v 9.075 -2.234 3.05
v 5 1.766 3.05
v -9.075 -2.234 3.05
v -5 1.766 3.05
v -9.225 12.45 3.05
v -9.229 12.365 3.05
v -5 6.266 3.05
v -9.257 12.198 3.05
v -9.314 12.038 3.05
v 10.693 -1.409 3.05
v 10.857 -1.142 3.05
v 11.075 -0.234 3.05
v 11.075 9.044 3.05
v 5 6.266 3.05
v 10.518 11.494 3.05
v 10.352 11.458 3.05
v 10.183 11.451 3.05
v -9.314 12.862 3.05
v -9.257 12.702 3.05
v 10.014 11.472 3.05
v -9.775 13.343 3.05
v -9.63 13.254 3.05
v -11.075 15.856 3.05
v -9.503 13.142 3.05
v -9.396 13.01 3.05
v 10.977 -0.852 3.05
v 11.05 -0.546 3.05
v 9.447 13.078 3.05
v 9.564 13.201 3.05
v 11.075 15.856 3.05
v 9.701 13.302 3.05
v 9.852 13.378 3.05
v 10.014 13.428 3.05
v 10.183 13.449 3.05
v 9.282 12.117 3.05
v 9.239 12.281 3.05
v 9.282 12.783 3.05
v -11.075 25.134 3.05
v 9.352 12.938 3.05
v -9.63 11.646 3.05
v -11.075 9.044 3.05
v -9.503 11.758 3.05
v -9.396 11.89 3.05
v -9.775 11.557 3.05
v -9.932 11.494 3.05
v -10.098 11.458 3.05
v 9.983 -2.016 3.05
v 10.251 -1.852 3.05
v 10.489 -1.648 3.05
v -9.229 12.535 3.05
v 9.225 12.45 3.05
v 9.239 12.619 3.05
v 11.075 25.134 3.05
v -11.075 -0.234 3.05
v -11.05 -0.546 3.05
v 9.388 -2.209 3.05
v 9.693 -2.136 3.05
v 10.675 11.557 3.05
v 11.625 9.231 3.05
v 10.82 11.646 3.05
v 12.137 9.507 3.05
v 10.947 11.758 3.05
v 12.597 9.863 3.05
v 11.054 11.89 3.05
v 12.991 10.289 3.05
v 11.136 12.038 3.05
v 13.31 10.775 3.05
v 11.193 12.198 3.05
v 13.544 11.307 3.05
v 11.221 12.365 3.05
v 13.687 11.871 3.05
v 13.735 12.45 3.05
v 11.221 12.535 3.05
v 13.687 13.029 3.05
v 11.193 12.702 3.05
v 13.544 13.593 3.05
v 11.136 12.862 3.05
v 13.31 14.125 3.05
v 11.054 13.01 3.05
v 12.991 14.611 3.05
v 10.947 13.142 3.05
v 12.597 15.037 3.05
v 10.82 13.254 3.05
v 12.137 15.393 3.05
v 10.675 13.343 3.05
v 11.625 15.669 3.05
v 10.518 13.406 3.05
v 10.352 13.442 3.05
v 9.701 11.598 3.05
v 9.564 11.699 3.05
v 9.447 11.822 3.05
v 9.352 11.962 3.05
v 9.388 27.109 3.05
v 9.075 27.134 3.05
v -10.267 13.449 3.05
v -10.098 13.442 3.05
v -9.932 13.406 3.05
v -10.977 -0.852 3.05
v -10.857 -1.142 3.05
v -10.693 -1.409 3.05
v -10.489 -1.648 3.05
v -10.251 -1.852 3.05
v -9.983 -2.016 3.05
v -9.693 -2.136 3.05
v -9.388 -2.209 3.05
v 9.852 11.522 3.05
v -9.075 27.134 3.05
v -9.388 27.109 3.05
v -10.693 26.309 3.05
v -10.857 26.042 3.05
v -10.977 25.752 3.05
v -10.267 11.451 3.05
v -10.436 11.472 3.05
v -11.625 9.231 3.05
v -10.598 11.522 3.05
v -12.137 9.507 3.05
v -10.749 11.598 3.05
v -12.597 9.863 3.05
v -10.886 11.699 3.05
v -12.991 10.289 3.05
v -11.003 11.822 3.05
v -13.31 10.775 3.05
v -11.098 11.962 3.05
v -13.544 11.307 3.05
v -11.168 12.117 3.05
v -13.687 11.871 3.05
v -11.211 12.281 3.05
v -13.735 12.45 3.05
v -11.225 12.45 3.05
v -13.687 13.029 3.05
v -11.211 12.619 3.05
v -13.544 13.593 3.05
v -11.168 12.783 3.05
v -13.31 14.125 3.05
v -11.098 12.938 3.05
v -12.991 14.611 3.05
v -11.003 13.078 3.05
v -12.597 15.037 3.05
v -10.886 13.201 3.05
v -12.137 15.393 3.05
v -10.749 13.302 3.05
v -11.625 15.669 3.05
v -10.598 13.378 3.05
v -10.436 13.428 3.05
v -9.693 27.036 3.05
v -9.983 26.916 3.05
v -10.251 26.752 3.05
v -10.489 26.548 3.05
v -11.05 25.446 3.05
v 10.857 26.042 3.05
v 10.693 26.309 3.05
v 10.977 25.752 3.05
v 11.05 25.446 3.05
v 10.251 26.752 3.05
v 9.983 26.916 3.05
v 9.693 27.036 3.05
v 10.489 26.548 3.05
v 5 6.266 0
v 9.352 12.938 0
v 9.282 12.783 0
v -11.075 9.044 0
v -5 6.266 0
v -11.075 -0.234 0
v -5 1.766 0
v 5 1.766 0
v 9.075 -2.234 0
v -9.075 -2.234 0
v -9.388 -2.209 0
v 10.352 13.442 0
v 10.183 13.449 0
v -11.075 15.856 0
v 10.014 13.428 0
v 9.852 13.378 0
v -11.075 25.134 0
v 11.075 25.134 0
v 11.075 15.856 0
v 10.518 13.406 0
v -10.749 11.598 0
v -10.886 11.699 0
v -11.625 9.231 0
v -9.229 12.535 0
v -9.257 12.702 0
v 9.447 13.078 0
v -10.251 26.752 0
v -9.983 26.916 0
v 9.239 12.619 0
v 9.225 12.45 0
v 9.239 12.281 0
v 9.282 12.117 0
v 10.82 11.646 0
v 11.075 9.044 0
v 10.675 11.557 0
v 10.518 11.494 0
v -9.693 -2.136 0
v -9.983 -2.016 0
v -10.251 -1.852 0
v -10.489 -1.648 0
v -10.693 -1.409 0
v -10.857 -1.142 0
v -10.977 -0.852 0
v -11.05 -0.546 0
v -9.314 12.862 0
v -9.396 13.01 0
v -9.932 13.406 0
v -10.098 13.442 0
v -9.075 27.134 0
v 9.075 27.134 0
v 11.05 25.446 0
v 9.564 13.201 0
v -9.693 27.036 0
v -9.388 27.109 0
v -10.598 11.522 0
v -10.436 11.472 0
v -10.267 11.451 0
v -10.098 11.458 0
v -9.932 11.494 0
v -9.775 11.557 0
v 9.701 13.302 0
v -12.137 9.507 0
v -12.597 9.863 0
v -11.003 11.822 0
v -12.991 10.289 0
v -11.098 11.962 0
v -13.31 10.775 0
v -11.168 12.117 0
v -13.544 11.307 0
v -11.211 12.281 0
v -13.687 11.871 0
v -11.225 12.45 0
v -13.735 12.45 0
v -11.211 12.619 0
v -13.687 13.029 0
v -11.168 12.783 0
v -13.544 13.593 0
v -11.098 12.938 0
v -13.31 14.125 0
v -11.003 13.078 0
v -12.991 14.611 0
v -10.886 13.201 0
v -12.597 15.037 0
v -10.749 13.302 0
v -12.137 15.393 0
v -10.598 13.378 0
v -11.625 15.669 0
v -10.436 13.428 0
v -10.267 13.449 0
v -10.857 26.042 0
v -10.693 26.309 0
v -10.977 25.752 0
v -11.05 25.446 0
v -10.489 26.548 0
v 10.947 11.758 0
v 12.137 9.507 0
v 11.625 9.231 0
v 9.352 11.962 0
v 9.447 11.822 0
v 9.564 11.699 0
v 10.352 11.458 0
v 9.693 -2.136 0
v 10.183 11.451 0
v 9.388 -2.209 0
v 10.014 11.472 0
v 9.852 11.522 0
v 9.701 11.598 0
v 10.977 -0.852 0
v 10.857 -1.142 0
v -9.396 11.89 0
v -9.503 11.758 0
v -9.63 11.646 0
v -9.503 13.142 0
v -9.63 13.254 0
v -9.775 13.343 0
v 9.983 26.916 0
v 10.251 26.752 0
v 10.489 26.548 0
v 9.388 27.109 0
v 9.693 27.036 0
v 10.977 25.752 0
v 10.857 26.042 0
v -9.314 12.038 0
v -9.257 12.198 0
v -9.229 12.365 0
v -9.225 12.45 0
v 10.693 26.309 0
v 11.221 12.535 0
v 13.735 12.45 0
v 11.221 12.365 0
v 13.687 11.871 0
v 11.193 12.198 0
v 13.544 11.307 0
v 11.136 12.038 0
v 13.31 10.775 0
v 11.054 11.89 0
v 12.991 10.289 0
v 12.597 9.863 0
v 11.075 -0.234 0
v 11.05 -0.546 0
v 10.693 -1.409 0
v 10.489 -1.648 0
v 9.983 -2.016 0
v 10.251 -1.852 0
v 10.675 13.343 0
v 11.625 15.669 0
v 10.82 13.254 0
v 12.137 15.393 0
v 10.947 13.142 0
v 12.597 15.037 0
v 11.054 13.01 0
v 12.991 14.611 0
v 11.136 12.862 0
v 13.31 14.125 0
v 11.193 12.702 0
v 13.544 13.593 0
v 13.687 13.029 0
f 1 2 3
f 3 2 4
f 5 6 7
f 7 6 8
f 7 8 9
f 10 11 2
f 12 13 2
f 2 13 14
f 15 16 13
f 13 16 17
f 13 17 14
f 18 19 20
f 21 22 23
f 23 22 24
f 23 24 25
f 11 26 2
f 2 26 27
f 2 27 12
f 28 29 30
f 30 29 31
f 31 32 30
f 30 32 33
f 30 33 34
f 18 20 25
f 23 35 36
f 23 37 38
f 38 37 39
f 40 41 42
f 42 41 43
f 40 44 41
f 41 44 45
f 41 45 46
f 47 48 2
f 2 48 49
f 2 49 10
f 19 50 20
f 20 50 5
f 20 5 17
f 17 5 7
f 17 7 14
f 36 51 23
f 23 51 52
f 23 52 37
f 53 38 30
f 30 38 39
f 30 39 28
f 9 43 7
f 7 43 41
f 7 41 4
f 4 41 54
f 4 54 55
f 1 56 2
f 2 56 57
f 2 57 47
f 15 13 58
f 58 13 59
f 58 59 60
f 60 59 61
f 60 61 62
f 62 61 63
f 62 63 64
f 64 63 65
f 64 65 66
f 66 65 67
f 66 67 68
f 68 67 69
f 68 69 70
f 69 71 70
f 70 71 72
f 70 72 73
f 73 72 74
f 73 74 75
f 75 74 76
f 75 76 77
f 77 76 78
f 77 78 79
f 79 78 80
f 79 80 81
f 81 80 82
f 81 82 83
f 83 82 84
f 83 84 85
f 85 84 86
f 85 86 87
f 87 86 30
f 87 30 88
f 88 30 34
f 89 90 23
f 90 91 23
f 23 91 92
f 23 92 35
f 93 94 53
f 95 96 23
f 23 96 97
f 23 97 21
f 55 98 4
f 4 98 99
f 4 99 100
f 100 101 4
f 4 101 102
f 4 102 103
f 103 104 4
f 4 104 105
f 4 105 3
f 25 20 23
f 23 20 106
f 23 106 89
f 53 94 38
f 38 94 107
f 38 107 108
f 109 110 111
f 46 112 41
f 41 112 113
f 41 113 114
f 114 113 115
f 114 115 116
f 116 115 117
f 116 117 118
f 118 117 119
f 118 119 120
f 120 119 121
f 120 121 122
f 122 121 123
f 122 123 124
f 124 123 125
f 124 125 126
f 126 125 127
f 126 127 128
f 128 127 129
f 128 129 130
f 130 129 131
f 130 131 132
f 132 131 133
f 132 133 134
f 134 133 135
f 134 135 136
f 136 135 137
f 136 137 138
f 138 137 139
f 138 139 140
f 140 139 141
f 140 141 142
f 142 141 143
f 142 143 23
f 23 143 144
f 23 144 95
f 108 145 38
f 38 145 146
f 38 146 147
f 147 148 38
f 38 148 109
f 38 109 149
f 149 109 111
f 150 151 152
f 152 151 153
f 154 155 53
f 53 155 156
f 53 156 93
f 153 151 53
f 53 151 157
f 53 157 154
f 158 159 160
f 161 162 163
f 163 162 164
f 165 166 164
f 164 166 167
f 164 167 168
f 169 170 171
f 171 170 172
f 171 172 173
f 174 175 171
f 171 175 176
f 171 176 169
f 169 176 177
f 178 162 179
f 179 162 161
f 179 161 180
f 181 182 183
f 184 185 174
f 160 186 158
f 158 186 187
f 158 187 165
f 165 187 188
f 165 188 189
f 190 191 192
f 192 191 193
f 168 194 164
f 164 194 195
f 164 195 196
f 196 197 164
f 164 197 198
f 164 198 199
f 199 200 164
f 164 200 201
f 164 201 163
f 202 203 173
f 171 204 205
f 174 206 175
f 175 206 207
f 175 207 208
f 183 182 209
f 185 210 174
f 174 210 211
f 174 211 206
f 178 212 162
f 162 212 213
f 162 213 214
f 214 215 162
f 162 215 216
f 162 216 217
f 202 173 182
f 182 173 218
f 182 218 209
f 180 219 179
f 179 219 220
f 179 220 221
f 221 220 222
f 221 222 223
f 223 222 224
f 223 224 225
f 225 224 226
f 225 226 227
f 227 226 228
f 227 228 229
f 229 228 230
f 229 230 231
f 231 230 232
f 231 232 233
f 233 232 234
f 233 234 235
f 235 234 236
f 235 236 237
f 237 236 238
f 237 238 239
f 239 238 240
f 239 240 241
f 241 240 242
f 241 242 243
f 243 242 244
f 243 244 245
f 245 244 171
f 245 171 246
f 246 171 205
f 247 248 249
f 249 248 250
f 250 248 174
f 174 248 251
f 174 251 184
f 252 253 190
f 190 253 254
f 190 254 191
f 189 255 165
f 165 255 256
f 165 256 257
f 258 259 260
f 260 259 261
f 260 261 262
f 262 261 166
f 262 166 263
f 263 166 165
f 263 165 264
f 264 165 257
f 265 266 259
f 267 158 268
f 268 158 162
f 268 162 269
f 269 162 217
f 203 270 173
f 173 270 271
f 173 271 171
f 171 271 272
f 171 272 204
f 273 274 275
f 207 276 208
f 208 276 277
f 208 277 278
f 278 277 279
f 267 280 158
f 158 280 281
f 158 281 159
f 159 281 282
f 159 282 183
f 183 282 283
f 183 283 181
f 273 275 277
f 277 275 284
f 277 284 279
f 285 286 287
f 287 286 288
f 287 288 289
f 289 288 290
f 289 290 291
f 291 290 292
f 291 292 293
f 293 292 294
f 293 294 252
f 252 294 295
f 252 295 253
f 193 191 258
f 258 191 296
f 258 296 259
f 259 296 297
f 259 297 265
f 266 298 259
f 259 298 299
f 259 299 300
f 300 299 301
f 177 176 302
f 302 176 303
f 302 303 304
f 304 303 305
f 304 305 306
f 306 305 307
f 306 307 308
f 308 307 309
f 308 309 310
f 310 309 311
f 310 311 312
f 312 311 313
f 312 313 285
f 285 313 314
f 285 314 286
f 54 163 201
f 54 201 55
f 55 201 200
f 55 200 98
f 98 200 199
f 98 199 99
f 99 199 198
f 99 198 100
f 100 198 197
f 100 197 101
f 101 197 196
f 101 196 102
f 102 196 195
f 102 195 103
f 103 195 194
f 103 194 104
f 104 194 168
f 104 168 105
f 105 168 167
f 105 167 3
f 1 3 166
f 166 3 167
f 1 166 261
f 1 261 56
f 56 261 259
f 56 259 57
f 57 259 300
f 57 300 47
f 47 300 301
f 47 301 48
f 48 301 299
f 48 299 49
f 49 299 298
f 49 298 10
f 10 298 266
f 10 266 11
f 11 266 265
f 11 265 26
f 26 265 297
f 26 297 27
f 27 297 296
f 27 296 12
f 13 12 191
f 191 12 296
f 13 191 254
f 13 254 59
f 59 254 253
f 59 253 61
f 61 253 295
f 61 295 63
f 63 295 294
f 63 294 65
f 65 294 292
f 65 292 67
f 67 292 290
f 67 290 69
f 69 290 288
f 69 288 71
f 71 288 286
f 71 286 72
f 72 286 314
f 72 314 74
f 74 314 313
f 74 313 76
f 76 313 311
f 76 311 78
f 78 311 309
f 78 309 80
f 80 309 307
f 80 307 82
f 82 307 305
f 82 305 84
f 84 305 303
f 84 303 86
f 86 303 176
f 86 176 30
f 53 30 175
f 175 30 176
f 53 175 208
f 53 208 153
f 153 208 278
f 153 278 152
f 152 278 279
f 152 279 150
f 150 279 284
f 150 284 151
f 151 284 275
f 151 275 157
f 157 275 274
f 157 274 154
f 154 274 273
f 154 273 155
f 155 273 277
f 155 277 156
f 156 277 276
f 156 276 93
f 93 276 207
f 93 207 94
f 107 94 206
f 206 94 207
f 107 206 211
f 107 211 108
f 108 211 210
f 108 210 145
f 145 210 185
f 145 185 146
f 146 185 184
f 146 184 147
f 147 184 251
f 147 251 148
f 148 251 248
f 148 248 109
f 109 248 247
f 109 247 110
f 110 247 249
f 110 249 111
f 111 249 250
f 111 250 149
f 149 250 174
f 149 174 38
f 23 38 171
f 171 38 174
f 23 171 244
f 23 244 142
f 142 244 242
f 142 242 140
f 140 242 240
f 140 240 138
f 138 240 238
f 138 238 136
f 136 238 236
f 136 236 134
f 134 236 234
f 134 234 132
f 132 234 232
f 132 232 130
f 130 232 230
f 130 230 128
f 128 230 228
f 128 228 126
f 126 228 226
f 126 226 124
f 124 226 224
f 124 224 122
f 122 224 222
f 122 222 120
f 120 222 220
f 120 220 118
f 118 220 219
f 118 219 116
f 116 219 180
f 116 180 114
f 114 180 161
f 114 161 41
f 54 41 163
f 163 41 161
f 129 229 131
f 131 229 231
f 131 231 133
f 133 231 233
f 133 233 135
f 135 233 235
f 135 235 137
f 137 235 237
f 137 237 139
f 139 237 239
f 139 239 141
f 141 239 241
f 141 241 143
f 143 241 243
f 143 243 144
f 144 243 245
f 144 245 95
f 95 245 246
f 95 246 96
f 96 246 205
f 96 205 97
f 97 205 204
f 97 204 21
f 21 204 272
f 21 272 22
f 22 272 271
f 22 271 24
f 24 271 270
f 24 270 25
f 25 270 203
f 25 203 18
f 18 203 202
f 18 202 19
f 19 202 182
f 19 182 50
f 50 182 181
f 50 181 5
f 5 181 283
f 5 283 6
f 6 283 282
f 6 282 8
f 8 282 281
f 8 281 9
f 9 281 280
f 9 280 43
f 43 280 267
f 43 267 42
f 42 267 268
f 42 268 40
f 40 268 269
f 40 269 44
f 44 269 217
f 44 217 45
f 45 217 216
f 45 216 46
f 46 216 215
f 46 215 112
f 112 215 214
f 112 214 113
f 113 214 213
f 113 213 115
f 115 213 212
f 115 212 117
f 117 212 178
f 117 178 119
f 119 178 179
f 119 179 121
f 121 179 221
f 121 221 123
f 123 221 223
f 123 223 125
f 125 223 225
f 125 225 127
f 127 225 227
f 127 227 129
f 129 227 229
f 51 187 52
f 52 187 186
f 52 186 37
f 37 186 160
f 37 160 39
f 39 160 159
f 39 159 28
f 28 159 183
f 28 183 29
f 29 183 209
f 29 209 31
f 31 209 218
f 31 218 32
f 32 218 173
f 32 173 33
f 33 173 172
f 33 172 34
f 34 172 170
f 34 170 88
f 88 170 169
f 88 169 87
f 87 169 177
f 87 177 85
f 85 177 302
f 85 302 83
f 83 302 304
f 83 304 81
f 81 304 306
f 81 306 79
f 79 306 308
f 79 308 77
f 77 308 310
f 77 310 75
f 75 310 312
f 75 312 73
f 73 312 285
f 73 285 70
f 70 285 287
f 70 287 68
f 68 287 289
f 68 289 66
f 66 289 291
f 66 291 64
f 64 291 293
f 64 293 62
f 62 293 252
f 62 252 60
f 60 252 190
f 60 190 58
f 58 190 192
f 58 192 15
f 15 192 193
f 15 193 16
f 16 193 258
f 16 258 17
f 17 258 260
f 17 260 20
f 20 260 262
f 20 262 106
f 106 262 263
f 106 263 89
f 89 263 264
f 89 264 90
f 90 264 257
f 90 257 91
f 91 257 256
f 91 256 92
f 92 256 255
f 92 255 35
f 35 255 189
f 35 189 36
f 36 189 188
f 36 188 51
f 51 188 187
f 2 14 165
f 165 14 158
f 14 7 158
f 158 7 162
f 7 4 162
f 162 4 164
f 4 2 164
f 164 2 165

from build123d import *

# Parameters (mm, degrees)
SKETCH2_R           = 1
SKETCH2_W           = 10
SKETCH2_H           = 4.5
BOSS_EXTRUDE2_DEPTH = 3.05


with BuildPart() as part:
    # Sketch2 → Boss-Extrude2 (new body)
    with BuildSketch(Plane.XY):
        with BuildLine():
            Line((-11.075, 15.855524923), (-11.075, 25.133587826))
            ThreePointArc((-11.075, 25.133587826), (-10.489213562, 26.547801388), (-9.075, 27.133587826))
            Line((-9.075, 27.133587826), (9.075, 27.133587826))
            ThreePointArc((9.075, 27.133587826), (10.489213562, 26.547801388), (11.075, 25.133587826))
            Line((11.075, 25.133587826), (11.075, 15.855524923))
            ThreePointArc((11.075, 15.855524923), (13.735, 12.45), (11.075, 9.044475077))
            Line((11.075, 9.044475077), (11.075, -0.233587826))
            ThreePointArc((11.075, -0.233587826), (10.489213562, -1.647801388), (9.075, -2.233587826))
            Line((9.075, -2.233587826), (-9.075, -2.233587826))
            ThreePointArc((-9.075, -2.233587826), (-10.489213562, -1.647801388), (-11.075, -0.233587826))
            Line((-11.075, -0.233587826), (-11.075, 9.044475077))
            ThreePointArc((-11.075, 9.044475077), (-13.735, 12.45), (-11.075, 15.855524923))
        make_face()
        with Locations((-10.225, 12.45)):
            Circle(SKETCH2_R, mode=Mode.SUBTRACT)
        with Locations(Location((10.225, 12.45, 0), (0, 0, 180))):
            Circle(SKETCH2_R, mode=Mode.SUBTRACT)
        with Locations((0, 4.016412174)):
            Rectangle(SKETCH2_W, SKETCH2_H, mode=Mode.SUBTRACT)
    extrude(amount=BOSS_EXTRUDE2_DEPTH)


solid = part.part
